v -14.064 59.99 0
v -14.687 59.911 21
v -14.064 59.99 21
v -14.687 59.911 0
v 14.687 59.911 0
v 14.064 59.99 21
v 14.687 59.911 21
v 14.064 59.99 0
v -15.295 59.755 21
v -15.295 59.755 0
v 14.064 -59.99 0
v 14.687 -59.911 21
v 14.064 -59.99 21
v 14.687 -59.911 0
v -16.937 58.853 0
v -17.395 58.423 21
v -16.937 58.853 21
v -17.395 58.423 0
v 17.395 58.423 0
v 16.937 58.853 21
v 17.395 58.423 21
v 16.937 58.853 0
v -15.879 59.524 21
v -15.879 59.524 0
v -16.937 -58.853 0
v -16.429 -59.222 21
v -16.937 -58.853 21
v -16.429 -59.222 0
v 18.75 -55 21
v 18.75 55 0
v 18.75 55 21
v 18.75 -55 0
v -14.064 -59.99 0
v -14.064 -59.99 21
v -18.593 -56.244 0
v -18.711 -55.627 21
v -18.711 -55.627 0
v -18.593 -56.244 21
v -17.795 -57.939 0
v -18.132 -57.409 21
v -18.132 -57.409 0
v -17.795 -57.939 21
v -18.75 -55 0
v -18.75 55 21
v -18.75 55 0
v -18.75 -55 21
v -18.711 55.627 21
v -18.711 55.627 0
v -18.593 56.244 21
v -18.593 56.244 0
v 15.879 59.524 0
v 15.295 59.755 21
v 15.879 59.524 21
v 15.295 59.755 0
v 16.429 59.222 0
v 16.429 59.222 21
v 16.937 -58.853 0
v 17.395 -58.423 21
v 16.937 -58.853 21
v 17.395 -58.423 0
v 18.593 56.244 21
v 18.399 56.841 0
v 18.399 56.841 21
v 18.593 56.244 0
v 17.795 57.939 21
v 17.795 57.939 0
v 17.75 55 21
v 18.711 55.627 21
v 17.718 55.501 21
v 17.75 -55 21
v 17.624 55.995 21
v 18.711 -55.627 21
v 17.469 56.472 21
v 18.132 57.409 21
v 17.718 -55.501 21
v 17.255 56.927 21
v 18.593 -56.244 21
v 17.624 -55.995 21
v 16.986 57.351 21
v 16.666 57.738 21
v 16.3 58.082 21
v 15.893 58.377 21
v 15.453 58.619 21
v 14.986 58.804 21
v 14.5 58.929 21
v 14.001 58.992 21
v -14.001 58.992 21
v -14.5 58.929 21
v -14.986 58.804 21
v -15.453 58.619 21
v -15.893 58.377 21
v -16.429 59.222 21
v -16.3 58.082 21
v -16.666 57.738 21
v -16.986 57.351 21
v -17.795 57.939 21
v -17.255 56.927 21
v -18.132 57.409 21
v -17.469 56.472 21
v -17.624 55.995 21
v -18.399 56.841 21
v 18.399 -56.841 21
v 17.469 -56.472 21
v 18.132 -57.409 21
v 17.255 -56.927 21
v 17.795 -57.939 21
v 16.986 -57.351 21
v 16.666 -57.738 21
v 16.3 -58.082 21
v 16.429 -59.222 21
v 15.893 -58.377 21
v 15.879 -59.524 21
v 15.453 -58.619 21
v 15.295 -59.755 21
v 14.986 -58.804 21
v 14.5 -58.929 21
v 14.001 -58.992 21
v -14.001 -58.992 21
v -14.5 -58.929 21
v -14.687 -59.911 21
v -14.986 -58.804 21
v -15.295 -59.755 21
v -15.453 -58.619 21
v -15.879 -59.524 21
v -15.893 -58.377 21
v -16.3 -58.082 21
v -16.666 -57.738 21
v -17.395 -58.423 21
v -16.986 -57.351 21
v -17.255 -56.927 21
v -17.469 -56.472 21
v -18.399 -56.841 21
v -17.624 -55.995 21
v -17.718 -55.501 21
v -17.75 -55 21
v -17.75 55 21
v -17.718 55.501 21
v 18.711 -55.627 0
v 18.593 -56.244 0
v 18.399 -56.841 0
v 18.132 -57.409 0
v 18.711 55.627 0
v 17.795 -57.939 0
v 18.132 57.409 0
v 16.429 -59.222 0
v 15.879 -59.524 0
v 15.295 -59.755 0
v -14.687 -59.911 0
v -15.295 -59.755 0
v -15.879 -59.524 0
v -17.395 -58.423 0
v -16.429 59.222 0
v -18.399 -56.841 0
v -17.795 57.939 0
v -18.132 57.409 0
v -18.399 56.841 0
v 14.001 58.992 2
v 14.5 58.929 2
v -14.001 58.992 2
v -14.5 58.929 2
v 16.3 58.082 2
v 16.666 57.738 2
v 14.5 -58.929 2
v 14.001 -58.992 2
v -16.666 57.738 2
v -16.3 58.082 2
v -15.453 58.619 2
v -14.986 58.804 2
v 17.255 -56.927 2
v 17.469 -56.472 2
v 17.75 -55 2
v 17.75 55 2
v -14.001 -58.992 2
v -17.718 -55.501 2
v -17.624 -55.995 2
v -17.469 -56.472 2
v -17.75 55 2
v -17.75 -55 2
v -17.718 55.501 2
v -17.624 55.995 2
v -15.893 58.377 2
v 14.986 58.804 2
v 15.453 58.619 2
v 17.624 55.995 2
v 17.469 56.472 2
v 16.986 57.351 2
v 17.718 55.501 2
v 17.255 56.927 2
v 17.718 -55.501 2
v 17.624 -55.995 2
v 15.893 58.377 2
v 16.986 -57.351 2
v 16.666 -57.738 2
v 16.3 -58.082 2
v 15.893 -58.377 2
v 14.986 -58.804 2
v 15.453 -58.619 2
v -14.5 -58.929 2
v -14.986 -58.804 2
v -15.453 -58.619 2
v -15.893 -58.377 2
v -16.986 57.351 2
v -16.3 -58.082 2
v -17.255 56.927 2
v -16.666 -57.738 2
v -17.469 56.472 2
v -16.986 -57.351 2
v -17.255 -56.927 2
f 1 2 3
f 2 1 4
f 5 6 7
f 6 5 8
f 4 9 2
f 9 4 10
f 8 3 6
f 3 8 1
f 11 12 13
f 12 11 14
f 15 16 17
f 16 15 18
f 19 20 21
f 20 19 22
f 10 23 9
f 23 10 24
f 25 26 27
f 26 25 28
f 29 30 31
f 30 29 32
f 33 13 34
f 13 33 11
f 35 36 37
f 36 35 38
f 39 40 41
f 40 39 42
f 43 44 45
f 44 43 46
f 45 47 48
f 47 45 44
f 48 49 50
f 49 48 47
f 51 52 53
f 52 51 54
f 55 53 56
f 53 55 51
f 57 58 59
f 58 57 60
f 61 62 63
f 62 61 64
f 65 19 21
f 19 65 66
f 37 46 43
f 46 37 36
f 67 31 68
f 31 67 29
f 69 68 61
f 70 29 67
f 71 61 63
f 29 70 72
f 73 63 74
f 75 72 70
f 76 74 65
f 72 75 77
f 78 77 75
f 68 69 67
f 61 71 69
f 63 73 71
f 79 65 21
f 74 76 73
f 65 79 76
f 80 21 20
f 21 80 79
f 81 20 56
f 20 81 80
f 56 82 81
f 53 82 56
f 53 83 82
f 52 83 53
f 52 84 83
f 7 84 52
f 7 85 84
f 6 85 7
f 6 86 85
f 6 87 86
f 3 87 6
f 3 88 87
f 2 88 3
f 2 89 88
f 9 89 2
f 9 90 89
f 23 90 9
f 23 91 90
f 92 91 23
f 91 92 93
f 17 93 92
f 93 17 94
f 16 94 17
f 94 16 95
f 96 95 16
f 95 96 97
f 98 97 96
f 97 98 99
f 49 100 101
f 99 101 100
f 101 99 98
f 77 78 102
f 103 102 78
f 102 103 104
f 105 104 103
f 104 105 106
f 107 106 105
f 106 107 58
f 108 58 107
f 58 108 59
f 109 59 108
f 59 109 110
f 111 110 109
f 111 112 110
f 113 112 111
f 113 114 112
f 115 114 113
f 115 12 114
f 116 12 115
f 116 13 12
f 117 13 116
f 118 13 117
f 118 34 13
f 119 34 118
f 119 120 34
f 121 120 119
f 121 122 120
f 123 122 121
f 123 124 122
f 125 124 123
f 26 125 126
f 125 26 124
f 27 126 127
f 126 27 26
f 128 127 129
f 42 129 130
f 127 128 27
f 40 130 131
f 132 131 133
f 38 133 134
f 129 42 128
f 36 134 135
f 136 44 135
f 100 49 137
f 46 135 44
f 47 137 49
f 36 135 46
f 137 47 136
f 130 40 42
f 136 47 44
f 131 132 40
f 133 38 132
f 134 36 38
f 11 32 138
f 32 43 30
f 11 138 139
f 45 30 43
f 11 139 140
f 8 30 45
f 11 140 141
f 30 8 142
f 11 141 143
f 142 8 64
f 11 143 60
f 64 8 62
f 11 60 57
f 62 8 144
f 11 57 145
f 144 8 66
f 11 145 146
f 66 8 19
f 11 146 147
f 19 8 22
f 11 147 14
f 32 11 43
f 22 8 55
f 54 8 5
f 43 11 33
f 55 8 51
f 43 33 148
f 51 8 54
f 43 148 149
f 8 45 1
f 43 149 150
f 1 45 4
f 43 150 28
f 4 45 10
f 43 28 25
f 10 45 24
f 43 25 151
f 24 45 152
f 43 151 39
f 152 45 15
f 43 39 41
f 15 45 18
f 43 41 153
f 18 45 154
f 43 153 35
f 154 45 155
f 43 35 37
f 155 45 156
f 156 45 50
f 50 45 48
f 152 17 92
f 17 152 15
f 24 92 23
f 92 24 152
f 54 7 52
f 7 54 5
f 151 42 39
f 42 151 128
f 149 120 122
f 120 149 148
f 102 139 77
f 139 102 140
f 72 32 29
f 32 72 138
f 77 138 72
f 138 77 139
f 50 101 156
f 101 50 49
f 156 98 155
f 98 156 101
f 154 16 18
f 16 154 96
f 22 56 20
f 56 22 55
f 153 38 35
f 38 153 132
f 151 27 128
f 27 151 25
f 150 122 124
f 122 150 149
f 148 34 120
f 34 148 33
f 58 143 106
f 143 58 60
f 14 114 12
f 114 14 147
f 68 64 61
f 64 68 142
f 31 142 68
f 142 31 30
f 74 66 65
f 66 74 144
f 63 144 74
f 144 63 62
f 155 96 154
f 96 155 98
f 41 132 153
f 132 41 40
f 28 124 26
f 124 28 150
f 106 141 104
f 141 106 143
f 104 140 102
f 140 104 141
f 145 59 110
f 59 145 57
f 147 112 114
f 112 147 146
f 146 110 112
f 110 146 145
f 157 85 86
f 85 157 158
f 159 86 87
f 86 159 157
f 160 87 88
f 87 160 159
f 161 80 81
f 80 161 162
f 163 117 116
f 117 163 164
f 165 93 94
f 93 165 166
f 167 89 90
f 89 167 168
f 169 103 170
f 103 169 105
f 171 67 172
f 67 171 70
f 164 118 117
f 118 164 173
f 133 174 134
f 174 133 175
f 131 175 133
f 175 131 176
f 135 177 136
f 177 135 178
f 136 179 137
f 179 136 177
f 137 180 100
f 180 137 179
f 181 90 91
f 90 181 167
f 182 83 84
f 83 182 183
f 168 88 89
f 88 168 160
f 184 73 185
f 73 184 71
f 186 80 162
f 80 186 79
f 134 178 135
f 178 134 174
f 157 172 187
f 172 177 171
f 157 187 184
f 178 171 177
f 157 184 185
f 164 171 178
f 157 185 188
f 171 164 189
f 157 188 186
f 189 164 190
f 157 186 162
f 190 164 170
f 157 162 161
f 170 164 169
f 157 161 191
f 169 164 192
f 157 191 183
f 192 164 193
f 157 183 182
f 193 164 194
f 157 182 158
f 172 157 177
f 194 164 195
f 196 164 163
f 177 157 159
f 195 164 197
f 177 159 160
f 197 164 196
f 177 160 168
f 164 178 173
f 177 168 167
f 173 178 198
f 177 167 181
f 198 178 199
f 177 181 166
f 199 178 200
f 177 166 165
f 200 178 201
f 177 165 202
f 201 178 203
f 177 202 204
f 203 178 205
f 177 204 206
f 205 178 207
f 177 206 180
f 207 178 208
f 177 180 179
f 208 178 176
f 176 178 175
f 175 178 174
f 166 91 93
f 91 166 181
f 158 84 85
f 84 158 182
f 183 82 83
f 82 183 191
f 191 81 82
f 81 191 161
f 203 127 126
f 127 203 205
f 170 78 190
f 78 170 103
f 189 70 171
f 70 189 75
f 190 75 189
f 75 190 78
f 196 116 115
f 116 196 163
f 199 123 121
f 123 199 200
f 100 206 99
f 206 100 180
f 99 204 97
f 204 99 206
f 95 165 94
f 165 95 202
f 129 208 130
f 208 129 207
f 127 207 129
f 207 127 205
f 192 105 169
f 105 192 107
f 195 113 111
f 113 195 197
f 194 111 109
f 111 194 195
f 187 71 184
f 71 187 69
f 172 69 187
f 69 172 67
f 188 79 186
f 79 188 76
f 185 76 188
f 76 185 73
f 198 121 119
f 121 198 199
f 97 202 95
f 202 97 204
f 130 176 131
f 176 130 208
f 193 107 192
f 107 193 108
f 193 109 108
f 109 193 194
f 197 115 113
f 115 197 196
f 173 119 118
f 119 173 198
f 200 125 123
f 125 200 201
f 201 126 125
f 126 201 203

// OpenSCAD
$fn = 50;


difference() {
	union() {
		hull() {
			translate(v = [-13.7500000000, 55.0000000000, 0]) {
				cylinder(h = 21, r = 5);
			}
			translate(v = [13.7500000000, 55.0000000000, 0]) {
				cylinder(h = 21, r = 5);
			}
			translate(v = [-13.7500000000, -55.0000000000, 0]) {
				cylinder(h = 21, r = 5);
			}
			translate(v = [13.7500000000, -55.0000000000, 0]) {
				cylinder(h = 21, r = 5);
			}
		}
	}
	union() {
		translate(v = [0, 0, 2]) {
			hull() {
				translate(v = [-13.7500000000, 55.0000000000, 0]) {
					cylinder(h = 19, r = 4);
				}
				translate(v = [13.7500000000, 55.0000000000, 0]) {
					cylinder(h = 19, r = 4);
				}
				translate(v = [-13.7500000000, -55.0000000000, 0]) {
					cylinder(h = 19, r = 4);
				}
				translate(v = [13.7500000000, -55.0000000000, 0]) {
					cylinder(h = 19, r = 4);
				}
			}
		}
	}
}
